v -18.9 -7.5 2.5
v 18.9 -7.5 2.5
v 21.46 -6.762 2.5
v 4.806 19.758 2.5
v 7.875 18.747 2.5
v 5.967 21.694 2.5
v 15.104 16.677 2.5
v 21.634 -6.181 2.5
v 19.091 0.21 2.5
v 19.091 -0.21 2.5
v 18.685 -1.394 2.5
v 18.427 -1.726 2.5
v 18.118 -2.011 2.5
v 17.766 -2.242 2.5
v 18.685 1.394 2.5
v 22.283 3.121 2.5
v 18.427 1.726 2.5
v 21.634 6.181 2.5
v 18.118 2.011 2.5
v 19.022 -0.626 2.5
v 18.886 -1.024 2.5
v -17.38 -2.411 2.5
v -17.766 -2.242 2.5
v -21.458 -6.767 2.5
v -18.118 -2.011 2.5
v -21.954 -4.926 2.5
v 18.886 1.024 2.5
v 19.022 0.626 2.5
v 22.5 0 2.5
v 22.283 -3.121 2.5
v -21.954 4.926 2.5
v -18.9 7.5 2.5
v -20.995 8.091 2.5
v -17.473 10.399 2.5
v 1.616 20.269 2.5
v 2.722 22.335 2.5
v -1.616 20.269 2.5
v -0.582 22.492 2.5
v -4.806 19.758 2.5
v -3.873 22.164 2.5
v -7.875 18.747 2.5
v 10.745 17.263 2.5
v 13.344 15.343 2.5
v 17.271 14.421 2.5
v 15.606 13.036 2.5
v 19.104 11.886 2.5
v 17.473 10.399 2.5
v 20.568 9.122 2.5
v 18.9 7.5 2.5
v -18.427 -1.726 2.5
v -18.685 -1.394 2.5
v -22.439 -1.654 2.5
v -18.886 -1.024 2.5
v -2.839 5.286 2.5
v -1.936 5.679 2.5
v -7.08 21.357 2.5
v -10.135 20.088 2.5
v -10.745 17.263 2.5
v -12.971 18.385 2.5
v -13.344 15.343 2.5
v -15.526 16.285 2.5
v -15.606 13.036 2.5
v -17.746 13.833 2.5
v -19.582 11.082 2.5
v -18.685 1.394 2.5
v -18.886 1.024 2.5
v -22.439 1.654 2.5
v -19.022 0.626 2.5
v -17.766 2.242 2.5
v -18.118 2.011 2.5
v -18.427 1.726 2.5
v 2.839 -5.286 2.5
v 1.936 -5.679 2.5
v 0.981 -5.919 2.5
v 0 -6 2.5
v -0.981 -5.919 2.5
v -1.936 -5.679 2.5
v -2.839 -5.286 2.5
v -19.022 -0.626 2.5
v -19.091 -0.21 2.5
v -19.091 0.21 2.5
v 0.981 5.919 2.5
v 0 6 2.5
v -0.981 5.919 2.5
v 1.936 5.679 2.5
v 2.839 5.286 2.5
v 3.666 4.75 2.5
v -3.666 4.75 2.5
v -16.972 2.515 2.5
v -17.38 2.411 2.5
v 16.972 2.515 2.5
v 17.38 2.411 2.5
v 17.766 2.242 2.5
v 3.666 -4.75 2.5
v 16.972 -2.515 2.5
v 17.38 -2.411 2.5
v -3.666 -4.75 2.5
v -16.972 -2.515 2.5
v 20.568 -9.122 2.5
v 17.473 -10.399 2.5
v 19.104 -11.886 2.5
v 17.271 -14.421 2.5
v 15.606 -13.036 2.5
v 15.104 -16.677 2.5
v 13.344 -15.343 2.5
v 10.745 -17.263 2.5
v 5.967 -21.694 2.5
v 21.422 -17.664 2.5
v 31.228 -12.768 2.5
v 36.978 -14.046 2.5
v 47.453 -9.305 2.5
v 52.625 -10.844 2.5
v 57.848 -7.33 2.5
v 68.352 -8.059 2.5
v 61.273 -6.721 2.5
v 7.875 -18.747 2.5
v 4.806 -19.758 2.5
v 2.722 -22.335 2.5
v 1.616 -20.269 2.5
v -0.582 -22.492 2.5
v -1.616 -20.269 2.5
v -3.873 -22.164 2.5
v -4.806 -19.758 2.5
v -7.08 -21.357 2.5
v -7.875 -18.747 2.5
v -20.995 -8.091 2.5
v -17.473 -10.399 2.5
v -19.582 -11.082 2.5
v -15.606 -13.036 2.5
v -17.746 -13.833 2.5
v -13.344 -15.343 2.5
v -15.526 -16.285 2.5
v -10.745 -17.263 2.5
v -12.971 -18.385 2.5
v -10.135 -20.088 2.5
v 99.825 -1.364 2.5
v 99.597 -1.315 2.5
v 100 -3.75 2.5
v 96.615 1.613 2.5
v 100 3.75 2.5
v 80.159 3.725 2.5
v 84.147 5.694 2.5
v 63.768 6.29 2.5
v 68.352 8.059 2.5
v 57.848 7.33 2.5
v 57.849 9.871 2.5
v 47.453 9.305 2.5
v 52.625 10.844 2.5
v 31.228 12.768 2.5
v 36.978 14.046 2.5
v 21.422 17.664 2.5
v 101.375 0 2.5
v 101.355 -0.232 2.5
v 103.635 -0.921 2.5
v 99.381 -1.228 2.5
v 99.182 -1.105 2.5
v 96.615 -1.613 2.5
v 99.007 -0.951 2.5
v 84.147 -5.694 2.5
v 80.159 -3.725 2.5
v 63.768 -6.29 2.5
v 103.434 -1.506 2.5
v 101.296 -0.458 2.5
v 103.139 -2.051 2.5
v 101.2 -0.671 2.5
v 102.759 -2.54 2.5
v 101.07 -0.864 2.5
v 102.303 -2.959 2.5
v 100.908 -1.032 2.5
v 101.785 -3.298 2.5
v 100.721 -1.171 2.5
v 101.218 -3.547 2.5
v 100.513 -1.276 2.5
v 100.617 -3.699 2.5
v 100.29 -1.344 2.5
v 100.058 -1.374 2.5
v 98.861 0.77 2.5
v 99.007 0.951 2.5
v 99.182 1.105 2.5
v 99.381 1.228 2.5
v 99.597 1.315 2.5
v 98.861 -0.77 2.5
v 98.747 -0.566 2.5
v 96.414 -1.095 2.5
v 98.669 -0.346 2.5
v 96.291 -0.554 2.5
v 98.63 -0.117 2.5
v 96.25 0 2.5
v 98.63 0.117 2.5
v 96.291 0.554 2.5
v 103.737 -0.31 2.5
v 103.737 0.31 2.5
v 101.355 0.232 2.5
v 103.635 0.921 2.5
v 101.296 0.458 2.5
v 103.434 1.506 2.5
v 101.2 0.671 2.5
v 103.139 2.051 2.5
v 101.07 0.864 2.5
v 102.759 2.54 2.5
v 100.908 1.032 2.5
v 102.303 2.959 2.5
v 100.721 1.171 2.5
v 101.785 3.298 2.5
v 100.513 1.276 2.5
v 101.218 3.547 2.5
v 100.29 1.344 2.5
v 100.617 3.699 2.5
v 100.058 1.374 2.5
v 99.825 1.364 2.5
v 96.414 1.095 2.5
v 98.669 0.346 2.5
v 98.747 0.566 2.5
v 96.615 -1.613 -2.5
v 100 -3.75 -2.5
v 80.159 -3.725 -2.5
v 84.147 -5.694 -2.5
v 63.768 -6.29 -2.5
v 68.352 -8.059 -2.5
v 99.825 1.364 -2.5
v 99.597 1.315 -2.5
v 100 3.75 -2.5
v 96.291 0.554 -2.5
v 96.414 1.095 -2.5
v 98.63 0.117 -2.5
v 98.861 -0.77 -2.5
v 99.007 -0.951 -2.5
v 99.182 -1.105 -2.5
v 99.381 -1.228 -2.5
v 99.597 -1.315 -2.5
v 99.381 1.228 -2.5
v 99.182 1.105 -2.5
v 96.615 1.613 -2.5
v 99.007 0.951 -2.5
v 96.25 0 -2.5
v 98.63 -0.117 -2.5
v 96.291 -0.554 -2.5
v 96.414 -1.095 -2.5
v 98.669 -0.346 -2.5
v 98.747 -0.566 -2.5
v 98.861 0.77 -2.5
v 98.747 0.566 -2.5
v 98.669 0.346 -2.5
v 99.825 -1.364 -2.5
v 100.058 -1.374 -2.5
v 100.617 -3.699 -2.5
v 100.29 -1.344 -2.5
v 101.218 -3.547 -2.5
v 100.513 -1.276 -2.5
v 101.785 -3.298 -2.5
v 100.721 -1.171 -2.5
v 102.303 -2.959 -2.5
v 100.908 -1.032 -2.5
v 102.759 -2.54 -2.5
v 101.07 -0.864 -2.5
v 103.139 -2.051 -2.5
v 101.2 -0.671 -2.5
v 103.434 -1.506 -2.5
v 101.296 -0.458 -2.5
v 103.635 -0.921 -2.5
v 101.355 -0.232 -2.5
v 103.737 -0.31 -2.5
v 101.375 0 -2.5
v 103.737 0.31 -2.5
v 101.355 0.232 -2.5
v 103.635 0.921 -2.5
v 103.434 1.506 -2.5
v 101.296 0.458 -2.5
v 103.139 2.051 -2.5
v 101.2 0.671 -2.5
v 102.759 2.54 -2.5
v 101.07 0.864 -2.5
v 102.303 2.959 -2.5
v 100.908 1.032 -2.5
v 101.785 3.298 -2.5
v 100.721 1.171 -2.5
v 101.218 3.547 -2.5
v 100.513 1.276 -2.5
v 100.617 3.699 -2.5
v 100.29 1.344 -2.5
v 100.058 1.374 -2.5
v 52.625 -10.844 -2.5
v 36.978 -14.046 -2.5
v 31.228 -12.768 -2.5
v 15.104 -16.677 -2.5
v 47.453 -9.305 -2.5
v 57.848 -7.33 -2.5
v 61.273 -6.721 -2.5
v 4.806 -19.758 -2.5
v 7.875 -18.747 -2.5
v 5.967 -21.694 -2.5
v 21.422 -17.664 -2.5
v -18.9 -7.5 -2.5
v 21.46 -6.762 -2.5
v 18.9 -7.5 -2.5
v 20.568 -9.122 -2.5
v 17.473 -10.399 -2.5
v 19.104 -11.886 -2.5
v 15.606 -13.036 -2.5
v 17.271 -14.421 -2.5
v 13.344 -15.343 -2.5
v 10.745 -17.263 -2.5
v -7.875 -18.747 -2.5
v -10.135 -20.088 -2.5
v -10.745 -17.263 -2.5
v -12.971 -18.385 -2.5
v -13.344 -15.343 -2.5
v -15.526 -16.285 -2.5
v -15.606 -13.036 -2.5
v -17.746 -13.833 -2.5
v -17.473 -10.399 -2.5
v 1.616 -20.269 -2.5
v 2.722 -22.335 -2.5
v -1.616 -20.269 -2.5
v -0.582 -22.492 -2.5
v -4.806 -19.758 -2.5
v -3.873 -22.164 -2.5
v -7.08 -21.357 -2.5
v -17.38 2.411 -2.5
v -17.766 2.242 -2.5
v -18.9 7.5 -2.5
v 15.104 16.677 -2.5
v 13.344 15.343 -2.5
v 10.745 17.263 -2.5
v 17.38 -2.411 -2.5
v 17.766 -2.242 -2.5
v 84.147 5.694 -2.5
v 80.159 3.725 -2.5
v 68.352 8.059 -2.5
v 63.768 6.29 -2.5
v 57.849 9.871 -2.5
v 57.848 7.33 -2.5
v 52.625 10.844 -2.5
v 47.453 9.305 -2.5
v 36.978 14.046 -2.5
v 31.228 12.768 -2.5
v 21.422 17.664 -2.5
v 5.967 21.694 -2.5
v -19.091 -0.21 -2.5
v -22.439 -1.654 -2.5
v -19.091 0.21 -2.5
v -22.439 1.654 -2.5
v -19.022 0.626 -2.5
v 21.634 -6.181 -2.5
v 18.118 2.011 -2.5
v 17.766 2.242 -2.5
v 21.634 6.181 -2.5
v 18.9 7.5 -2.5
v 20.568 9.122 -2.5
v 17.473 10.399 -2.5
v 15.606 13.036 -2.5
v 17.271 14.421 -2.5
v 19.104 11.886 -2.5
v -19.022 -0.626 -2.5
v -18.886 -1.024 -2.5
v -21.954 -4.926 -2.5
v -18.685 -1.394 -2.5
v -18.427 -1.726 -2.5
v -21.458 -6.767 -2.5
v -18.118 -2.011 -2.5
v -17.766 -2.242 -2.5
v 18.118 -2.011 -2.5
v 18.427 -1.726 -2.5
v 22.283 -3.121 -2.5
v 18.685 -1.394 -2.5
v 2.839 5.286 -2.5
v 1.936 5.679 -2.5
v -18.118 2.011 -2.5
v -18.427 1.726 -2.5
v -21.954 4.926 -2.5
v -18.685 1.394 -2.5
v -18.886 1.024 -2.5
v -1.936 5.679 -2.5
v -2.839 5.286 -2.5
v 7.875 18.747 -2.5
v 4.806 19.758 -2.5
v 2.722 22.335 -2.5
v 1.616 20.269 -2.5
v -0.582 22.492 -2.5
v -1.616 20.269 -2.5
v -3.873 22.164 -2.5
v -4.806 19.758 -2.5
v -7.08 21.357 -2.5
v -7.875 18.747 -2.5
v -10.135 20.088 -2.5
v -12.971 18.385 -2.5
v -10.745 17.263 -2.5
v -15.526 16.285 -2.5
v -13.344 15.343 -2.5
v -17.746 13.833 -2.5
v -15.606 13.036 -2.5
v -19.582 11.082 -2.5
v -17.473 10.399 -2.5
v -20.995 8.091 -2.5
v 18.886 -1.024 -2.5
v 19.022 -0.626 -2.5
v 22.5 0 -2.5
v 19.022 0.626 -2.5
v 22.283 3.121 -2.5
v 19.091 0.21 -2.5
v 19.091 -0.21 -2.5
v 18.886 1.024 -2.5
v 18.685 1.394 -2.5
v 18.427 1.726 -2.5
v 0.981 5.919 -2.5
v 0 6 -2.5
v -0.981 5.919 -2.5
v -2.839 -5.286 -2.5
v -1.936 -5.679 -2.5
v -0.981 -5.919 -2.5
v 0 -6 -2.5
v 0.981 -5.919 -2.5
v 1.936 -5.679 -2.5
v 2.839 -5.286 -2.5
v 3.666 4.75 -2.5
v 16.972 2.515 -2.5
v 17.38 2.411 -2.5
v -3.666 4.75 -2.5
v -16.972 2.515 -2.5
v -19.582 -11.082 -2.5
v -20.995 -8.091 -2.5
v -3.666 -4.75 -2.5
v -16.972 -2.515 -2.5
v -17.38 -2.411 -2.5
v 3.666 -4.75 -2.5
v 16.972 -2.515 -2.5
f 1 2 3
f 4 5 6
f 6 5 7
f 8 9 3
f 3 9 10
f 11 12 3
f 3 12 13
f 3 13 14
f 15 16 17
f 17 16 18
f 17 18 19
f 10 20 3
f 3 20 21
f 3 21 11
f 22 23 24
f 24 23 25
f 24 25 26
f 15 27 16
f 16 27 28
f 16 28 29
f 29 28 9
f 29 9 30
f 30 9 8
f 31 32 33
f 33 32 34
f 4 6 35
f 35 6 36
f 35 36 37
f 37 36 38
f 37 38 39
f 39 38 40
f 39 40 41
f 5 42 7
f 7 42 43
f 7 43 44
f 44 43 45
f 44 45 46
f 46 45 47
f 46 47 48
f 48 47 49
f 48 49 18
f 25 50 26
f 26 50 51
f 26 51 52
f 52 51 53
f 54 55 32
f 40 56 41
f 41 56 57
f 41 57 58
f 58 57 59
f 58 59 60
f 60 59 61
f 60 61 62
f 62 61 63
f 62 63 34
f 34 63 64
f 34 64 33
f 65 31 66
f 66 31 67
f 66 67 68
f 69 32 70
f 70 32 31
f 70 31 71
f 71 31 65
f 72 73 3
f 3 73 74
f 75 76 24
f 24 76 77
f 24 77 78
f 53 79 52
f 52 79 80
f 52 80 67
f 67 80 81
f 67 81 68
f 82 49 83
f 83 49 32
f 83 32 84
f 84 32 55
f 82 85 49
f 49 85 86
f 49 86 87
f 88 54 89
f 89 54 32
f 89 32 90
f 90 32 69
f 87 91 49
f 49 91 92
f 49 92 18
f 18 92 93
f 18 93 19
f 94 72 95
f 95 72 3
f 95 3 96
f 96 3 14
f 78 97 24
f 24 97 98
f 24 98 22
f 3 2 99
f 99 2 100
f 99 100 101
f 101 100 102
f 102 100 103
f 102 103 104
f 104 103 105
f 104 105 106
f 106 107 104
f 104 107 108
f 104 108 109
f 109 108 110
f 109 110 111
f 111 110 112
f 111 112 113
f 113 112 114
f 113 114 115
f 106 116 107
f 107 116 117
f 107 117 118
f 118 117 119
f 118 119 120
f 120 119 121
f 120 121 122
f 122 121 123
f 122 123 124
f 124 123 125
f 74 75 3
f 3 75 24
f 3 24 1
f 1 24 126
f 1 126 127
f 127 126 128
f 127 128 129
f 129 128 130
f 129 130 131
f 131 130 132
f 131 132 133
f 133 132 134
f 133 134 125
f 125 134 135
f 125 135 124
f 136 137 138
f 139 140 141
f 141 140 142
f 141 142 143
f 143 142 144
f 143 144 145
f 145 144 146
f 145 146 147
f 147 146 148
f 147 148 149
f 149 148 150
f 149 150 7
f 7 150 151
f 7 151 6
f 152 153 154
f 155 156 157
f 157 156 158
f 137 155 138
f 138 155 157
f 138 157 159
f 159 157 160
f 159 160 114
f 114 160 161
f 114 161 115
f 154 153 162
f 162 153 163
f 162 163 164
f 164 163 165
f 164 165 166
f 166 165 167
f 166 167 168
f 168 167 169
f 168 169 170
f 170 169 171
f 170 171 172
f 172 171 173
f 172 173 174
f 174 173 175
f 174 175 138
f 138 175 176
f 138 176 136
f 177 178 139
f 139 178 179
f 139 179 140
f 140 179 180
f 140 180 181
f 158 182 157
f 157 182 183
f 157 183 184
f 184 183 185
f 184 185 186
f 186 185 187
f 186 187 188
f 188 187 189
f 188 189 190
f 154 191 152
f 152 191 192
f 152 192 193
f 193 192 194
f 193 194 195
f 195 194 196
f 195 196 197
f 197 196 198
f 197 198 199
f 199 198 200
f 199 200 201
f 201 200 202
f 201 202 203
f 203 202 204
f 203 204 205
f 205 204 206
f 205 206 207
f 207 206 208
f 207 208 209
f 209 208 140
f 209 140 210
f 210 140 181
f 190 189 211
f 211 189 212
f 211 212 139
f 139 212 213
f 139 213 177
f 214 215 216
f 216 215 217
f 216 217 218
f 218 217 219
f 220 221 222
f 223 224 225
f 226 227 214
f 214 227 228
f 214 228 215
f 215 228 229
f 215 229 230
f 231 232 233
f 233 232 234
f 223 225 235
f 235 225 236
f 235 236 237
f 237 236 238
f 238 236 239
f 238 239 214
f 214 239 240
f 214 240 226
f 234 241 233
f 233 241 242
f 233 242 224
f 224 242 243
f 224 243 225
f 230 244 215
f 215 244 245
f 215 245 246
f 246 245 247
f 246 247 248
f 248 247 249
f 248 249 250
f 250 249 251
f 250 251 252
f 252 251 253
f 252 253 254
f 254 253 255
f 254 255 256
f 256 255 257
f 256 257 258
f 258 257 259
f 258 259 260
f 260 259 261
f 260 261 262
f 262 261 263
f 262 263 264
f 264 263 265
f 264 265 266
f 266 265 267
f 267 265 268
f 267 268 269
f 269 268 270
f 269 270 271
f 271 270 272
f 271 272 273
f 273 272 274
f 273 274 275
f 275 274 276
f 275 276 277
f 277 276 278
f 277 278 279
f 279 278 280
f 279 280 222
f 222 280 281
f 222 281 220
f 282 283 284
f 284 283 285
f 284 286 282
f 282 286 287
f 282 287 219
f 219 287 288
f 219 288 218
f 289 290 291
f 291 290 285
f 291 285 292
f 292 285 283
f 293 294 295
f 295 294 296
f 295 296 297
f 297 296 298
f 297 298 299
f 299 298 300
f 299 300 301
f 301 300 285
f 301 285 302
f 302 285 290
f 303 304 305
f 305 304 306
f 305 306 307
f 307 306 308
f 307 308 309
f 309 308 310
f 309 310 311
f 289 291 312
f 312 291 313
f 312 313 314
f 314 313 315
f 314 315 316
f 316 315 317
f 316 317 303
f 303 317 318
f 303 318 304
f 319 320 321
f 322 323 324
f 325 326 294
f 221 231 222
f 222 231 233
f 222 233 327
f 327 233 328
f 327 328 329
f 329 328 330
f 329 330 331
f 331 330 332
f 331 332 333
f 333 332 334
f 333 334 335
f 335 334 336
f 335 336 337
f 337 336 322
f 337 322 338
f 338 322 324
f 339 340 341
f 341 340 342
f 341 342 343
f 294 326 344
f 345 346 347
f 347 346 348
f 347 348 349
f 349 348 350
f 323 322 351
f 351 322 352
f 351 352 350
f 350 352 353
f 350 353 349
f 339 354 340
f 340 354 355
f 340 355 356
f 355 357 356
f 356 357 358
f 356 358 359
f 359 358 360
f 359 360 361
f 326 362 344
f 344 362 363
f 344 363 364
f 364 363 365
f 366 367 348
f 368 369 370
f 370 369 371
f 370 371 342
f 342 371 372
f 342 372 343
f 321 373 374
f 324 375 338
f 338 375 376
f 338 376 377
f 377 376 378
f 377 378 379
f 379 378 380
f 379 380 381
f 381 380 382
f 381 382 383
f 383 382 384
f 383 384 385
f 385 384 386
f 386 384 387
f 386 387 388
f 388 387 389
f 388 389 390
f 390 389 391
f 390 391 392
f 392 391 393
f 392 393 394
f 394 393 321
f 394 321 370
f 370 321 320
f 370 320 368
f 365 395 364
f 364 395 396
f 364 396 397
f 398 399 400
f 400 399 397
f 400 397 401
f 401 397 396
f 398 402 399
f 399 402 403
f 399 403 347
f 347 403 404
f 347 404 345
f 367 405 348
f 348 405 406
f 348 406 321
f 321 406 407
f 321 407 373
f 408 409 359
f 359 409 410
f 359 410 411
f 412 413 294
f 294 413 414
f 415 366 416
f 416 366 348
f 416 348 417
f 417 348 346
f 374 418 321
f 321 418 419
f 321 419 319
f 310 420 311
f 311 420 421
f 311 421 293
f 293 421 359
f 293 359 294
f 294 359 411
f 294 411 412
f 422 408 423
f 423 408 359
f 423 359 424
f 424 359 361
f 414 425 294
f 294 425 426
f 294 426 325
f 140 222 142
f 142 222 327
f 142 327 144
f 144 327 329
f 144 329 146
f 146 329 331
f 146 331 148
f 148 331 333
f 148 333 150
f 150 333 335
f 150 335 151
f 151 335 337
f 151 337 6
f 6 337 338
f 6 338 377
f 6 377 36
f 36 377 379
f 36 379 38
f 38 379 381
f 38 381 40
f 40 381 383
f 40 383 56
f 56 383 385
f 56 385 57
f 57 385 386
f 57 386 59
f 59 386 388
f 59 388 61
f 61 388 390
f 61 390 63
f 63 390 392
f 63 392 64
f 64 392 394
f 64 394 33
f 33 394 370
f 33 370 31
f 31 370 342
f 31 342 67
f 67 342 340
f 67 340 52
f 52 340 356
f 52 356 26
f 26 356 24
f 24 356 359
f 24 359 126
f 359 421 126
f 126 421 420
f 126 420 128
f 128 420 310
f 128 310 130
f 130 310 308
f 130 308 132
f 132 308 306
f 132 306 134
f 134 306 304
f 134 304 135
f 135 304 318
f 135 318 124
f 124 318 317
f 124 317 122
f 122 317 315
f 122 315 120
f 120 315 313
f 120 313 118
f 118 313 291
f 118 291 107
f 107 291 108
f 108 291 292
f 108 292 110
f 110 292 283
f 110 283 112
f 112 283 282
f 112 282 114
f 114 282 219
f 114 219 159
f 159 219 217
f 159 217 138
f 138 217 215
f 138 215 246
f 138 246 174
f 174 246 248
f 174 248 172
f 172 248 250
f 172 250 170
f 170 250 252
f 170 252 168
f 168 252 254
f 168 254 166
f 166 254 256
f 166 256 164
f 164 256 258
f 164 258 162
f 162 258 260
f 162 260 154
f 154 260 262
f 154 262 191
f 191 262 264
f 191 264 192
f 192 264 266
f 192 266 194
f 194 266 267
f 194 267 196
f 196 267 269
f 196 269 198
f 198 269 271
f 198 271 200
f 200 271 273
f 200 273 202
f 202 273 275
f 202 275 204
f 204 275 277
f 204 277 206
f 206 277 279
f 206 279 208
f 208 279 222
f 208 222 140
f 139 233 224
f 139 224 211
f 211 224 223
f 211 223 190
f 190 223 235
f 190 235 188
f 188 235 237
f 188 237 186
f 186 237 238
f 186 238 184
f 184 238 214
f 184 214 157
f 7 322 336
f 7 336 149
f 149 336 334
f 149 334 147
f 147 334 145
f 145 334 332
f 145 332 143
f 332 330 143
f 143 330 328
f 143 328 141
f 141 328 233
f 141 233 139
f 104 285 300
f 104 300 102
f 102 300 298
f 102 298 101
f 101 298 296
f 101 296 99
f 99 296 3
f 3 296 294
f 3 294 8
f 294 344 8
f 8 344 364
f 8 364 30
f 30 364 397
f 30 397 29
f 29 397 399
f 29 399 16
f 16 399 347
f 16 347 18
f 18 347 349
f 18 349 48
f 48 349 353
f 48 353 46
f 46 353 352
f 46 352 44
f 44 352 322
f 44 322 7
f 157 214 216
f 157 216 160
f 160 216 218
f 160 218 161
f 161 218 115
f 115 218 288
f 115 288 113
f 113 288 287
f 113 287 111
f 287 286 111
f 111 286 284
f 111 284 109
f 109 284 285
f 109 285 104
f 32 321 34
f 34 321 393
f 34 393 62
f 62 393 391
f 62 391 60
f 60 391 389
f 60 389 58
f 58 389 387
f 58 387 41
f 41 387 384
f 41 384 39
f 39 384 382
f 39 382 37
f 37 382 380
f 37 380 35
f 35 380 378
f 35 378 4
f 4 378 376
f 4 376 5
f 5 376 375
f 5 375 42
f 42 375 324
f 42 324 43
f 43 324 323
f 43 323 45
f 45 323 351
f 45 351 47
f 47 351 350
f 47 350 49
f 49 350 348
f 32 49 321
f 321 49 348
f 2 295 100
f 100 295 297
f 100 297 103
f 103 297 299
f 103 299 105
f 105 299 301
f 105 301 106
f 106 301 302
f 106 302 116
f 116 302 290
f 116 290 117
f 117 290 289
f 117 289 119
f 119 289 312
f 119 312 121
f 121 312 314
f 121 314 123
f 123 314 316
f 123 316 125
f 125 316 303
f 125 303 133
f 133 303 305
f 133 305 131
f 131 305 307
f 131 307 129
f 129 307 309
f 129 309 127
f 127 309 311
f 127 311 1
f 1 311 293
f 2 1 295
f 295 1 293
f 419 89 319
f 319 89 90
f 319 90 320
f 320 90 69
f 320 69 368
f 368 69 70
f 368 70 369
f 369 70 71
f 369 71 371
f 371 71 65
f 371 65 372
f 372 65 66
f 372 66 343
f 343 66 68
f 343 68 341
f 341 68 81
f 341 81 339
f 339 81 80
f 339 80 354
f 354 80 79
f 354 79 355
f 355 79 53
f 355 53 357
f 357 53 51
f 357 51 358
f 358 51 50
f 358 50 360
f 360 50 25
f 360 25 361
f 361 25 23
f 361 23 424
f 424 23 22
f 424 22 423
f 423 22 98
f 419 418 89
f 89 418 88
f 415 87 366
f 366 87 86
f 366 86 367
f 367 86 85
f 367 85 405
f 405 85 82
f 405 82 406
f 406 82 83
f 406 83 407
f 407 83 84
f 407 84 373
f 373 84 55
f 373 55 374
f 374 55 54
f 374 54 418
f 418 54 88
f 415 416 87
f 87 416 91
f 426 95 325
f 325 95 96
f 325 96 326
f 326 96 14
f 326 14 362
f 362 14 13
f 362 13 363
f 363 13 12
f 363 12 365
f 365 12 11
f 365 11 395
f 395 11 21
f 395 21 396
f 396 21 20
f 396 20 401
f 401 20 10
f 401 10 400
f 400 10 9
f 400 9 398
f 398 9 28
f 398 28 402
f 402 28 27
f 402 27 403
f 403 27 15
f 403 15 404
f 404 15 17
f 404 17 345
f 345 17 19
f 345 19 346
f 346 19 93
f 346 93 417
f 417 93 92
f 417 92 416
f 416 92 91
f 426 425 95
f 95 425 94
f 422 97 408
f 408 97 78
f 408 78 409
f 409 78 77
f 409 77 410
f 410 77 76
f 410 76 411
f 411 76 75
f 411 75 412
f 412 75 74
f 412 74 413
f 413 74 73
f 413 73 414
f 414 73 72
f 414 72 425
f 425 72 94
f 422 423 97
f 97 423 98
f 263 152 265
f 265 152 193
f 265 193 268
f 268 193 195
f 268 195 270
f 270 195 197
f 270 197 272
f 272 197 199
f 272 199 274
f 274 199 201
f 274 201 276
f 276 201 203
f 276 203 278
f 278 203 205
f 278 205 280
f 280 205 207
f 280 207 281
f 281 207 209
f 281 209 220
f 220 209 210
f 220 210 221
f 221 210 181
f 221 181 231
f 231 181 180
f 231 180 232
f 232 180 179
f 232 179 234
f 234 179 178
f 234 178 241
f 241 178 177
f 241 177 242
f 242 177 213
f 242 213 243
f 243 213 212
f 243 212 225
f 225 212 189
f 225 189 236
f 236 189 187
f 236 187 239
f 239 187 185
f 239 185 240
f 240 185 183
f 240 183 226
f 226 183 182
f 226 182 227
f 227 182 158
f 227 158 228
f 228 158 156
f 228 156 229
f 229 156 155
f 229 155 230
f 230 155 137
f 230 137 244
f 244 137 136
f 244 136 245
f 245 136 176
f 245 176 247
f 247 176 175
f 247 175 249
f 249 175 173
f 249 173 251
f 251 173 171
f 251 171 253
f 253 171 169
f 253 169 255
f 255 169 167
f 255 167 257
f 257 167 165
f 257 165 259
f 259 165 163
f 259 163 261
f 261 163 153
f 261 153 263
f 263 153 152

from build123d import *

# Parameters (mm, degrees)
BOSS_EXTRUDE1_DEPTH     = 2.5
CUT_EXTRUDE1_DEPTH      = 107.279407695
CUT_EXTRUDE2_DEPTH      = 107.191160178
CUT_EXTRUDE2_DEPTH_BACK = 107.191160178
SKETCH6_R               = 1.375


with BuildPart() as part:
    # Sketch3 → Boss-Extrude1 (new, symmetric)
    with BuildSketch(Plane.XY):
        with BuildLine():
            ThreePointArc((5.967243679, 21.694285028), (-22.5, 0), (5.967243679, -21.694285028))
            ThreePointArc((5.967243679, -21.694285028), (52.625175797, -10.843791309), (100, -3.75))
            ThreePointArc((100, -3.75), (103.75, 0), (100, 3.75))
            ThreePointArc((100, 3.75), (52.625175797, 10.843791309), (5.967243679, 21.694285028))
        make_face()
        with BuildLine():
            Line((-18.9, -7.5), (18.9, -7.5))
            ThreePointArc((18.9, -7.5), (0, -20.333715843), (-18.9, -7.5))
        make_face(mode=Mode.SUBTRACT)
        with BuildLine():
            Line((-18.9, 7.5), (18.9, 7.5))
            ThreePointArc((18.9, 7.5), (0, 20.333715843), (-18.9, 7.5))
        make_face(mode=Mode.SUBTRACT)
        with BuildLine():
            ThreePointArc((15.104191038, 16.676732686), (55.600003106, 7.741362472), (96.614544634, 1.612821119))
            ThreePointArc((96.614544634, 1.612821119), (96.25, 0), (96.614544634, -1.612821119))
            ThreePointArc((96.614544634, -1.612821119), (55.600003106, -7.741362472), (15.104191038, -16.676732686))
            ThreePointArc((15.104191038, -16.676732686), (22.5, 0), (15.104191038, 16.676732686))
        make_face(mode=Mode.SUBTRACT)
    extrude(amount=BOSS_EXTRUDE1_DEPTH, both=True)

    # Sketch4 → Cut-Extrude1 (cut, through all)
    with BuildSketch(Plane.XY.offset(2.5)):
        with BuildLine():
            Line((-16.97242536, 2.514767746), (-3.665719575, 4.75))
            ThreePointArc((-3.665719575, 4.75), (0, 6), (3.665719575, 4.75))
            Line((3.665719575, 4.75), (16.97242536, 2.514767746))
            ThreePointArc((16.97242536, 2.514767746), (19.1, 0), (16.97242536, -2.514767746))
            Line((16.97242536, -2.514767746), (3.665719575, -4.75))
            ThreePointArc((3.665719575, -4.75), (0, -6), (-3.665719575, -4.75))
            Line((-3.665719575, -4.75), (-16.97242536, -2.514767746))
            ThreePointArc((-16.97242536, -2.514767746), (-19.1, 0), (-16.97242536, 2.514767746))
        make_face()
    extrude(amount=-CUT_EXTRUDE1_DEPTH, mode=Mode.SUBTRACT)

    # Sketch6 → Cut-Extrude2 (cut, two sides: drawn at the far end of the back side and taken through both)
    with BuildSketch(Plane.XY.offset(-CUT_EXTRUDE2_DEPTH_BACK)):
        with Locations((100, 0)):
            Circle(SKETCH6_R)
    extrude(amount=CUT_EXTRUDE2_DEPTH + CUT_EXTRUDE2_DEPTH_BACK, mode=Mode.SUBTRACT)


solid = part.part
